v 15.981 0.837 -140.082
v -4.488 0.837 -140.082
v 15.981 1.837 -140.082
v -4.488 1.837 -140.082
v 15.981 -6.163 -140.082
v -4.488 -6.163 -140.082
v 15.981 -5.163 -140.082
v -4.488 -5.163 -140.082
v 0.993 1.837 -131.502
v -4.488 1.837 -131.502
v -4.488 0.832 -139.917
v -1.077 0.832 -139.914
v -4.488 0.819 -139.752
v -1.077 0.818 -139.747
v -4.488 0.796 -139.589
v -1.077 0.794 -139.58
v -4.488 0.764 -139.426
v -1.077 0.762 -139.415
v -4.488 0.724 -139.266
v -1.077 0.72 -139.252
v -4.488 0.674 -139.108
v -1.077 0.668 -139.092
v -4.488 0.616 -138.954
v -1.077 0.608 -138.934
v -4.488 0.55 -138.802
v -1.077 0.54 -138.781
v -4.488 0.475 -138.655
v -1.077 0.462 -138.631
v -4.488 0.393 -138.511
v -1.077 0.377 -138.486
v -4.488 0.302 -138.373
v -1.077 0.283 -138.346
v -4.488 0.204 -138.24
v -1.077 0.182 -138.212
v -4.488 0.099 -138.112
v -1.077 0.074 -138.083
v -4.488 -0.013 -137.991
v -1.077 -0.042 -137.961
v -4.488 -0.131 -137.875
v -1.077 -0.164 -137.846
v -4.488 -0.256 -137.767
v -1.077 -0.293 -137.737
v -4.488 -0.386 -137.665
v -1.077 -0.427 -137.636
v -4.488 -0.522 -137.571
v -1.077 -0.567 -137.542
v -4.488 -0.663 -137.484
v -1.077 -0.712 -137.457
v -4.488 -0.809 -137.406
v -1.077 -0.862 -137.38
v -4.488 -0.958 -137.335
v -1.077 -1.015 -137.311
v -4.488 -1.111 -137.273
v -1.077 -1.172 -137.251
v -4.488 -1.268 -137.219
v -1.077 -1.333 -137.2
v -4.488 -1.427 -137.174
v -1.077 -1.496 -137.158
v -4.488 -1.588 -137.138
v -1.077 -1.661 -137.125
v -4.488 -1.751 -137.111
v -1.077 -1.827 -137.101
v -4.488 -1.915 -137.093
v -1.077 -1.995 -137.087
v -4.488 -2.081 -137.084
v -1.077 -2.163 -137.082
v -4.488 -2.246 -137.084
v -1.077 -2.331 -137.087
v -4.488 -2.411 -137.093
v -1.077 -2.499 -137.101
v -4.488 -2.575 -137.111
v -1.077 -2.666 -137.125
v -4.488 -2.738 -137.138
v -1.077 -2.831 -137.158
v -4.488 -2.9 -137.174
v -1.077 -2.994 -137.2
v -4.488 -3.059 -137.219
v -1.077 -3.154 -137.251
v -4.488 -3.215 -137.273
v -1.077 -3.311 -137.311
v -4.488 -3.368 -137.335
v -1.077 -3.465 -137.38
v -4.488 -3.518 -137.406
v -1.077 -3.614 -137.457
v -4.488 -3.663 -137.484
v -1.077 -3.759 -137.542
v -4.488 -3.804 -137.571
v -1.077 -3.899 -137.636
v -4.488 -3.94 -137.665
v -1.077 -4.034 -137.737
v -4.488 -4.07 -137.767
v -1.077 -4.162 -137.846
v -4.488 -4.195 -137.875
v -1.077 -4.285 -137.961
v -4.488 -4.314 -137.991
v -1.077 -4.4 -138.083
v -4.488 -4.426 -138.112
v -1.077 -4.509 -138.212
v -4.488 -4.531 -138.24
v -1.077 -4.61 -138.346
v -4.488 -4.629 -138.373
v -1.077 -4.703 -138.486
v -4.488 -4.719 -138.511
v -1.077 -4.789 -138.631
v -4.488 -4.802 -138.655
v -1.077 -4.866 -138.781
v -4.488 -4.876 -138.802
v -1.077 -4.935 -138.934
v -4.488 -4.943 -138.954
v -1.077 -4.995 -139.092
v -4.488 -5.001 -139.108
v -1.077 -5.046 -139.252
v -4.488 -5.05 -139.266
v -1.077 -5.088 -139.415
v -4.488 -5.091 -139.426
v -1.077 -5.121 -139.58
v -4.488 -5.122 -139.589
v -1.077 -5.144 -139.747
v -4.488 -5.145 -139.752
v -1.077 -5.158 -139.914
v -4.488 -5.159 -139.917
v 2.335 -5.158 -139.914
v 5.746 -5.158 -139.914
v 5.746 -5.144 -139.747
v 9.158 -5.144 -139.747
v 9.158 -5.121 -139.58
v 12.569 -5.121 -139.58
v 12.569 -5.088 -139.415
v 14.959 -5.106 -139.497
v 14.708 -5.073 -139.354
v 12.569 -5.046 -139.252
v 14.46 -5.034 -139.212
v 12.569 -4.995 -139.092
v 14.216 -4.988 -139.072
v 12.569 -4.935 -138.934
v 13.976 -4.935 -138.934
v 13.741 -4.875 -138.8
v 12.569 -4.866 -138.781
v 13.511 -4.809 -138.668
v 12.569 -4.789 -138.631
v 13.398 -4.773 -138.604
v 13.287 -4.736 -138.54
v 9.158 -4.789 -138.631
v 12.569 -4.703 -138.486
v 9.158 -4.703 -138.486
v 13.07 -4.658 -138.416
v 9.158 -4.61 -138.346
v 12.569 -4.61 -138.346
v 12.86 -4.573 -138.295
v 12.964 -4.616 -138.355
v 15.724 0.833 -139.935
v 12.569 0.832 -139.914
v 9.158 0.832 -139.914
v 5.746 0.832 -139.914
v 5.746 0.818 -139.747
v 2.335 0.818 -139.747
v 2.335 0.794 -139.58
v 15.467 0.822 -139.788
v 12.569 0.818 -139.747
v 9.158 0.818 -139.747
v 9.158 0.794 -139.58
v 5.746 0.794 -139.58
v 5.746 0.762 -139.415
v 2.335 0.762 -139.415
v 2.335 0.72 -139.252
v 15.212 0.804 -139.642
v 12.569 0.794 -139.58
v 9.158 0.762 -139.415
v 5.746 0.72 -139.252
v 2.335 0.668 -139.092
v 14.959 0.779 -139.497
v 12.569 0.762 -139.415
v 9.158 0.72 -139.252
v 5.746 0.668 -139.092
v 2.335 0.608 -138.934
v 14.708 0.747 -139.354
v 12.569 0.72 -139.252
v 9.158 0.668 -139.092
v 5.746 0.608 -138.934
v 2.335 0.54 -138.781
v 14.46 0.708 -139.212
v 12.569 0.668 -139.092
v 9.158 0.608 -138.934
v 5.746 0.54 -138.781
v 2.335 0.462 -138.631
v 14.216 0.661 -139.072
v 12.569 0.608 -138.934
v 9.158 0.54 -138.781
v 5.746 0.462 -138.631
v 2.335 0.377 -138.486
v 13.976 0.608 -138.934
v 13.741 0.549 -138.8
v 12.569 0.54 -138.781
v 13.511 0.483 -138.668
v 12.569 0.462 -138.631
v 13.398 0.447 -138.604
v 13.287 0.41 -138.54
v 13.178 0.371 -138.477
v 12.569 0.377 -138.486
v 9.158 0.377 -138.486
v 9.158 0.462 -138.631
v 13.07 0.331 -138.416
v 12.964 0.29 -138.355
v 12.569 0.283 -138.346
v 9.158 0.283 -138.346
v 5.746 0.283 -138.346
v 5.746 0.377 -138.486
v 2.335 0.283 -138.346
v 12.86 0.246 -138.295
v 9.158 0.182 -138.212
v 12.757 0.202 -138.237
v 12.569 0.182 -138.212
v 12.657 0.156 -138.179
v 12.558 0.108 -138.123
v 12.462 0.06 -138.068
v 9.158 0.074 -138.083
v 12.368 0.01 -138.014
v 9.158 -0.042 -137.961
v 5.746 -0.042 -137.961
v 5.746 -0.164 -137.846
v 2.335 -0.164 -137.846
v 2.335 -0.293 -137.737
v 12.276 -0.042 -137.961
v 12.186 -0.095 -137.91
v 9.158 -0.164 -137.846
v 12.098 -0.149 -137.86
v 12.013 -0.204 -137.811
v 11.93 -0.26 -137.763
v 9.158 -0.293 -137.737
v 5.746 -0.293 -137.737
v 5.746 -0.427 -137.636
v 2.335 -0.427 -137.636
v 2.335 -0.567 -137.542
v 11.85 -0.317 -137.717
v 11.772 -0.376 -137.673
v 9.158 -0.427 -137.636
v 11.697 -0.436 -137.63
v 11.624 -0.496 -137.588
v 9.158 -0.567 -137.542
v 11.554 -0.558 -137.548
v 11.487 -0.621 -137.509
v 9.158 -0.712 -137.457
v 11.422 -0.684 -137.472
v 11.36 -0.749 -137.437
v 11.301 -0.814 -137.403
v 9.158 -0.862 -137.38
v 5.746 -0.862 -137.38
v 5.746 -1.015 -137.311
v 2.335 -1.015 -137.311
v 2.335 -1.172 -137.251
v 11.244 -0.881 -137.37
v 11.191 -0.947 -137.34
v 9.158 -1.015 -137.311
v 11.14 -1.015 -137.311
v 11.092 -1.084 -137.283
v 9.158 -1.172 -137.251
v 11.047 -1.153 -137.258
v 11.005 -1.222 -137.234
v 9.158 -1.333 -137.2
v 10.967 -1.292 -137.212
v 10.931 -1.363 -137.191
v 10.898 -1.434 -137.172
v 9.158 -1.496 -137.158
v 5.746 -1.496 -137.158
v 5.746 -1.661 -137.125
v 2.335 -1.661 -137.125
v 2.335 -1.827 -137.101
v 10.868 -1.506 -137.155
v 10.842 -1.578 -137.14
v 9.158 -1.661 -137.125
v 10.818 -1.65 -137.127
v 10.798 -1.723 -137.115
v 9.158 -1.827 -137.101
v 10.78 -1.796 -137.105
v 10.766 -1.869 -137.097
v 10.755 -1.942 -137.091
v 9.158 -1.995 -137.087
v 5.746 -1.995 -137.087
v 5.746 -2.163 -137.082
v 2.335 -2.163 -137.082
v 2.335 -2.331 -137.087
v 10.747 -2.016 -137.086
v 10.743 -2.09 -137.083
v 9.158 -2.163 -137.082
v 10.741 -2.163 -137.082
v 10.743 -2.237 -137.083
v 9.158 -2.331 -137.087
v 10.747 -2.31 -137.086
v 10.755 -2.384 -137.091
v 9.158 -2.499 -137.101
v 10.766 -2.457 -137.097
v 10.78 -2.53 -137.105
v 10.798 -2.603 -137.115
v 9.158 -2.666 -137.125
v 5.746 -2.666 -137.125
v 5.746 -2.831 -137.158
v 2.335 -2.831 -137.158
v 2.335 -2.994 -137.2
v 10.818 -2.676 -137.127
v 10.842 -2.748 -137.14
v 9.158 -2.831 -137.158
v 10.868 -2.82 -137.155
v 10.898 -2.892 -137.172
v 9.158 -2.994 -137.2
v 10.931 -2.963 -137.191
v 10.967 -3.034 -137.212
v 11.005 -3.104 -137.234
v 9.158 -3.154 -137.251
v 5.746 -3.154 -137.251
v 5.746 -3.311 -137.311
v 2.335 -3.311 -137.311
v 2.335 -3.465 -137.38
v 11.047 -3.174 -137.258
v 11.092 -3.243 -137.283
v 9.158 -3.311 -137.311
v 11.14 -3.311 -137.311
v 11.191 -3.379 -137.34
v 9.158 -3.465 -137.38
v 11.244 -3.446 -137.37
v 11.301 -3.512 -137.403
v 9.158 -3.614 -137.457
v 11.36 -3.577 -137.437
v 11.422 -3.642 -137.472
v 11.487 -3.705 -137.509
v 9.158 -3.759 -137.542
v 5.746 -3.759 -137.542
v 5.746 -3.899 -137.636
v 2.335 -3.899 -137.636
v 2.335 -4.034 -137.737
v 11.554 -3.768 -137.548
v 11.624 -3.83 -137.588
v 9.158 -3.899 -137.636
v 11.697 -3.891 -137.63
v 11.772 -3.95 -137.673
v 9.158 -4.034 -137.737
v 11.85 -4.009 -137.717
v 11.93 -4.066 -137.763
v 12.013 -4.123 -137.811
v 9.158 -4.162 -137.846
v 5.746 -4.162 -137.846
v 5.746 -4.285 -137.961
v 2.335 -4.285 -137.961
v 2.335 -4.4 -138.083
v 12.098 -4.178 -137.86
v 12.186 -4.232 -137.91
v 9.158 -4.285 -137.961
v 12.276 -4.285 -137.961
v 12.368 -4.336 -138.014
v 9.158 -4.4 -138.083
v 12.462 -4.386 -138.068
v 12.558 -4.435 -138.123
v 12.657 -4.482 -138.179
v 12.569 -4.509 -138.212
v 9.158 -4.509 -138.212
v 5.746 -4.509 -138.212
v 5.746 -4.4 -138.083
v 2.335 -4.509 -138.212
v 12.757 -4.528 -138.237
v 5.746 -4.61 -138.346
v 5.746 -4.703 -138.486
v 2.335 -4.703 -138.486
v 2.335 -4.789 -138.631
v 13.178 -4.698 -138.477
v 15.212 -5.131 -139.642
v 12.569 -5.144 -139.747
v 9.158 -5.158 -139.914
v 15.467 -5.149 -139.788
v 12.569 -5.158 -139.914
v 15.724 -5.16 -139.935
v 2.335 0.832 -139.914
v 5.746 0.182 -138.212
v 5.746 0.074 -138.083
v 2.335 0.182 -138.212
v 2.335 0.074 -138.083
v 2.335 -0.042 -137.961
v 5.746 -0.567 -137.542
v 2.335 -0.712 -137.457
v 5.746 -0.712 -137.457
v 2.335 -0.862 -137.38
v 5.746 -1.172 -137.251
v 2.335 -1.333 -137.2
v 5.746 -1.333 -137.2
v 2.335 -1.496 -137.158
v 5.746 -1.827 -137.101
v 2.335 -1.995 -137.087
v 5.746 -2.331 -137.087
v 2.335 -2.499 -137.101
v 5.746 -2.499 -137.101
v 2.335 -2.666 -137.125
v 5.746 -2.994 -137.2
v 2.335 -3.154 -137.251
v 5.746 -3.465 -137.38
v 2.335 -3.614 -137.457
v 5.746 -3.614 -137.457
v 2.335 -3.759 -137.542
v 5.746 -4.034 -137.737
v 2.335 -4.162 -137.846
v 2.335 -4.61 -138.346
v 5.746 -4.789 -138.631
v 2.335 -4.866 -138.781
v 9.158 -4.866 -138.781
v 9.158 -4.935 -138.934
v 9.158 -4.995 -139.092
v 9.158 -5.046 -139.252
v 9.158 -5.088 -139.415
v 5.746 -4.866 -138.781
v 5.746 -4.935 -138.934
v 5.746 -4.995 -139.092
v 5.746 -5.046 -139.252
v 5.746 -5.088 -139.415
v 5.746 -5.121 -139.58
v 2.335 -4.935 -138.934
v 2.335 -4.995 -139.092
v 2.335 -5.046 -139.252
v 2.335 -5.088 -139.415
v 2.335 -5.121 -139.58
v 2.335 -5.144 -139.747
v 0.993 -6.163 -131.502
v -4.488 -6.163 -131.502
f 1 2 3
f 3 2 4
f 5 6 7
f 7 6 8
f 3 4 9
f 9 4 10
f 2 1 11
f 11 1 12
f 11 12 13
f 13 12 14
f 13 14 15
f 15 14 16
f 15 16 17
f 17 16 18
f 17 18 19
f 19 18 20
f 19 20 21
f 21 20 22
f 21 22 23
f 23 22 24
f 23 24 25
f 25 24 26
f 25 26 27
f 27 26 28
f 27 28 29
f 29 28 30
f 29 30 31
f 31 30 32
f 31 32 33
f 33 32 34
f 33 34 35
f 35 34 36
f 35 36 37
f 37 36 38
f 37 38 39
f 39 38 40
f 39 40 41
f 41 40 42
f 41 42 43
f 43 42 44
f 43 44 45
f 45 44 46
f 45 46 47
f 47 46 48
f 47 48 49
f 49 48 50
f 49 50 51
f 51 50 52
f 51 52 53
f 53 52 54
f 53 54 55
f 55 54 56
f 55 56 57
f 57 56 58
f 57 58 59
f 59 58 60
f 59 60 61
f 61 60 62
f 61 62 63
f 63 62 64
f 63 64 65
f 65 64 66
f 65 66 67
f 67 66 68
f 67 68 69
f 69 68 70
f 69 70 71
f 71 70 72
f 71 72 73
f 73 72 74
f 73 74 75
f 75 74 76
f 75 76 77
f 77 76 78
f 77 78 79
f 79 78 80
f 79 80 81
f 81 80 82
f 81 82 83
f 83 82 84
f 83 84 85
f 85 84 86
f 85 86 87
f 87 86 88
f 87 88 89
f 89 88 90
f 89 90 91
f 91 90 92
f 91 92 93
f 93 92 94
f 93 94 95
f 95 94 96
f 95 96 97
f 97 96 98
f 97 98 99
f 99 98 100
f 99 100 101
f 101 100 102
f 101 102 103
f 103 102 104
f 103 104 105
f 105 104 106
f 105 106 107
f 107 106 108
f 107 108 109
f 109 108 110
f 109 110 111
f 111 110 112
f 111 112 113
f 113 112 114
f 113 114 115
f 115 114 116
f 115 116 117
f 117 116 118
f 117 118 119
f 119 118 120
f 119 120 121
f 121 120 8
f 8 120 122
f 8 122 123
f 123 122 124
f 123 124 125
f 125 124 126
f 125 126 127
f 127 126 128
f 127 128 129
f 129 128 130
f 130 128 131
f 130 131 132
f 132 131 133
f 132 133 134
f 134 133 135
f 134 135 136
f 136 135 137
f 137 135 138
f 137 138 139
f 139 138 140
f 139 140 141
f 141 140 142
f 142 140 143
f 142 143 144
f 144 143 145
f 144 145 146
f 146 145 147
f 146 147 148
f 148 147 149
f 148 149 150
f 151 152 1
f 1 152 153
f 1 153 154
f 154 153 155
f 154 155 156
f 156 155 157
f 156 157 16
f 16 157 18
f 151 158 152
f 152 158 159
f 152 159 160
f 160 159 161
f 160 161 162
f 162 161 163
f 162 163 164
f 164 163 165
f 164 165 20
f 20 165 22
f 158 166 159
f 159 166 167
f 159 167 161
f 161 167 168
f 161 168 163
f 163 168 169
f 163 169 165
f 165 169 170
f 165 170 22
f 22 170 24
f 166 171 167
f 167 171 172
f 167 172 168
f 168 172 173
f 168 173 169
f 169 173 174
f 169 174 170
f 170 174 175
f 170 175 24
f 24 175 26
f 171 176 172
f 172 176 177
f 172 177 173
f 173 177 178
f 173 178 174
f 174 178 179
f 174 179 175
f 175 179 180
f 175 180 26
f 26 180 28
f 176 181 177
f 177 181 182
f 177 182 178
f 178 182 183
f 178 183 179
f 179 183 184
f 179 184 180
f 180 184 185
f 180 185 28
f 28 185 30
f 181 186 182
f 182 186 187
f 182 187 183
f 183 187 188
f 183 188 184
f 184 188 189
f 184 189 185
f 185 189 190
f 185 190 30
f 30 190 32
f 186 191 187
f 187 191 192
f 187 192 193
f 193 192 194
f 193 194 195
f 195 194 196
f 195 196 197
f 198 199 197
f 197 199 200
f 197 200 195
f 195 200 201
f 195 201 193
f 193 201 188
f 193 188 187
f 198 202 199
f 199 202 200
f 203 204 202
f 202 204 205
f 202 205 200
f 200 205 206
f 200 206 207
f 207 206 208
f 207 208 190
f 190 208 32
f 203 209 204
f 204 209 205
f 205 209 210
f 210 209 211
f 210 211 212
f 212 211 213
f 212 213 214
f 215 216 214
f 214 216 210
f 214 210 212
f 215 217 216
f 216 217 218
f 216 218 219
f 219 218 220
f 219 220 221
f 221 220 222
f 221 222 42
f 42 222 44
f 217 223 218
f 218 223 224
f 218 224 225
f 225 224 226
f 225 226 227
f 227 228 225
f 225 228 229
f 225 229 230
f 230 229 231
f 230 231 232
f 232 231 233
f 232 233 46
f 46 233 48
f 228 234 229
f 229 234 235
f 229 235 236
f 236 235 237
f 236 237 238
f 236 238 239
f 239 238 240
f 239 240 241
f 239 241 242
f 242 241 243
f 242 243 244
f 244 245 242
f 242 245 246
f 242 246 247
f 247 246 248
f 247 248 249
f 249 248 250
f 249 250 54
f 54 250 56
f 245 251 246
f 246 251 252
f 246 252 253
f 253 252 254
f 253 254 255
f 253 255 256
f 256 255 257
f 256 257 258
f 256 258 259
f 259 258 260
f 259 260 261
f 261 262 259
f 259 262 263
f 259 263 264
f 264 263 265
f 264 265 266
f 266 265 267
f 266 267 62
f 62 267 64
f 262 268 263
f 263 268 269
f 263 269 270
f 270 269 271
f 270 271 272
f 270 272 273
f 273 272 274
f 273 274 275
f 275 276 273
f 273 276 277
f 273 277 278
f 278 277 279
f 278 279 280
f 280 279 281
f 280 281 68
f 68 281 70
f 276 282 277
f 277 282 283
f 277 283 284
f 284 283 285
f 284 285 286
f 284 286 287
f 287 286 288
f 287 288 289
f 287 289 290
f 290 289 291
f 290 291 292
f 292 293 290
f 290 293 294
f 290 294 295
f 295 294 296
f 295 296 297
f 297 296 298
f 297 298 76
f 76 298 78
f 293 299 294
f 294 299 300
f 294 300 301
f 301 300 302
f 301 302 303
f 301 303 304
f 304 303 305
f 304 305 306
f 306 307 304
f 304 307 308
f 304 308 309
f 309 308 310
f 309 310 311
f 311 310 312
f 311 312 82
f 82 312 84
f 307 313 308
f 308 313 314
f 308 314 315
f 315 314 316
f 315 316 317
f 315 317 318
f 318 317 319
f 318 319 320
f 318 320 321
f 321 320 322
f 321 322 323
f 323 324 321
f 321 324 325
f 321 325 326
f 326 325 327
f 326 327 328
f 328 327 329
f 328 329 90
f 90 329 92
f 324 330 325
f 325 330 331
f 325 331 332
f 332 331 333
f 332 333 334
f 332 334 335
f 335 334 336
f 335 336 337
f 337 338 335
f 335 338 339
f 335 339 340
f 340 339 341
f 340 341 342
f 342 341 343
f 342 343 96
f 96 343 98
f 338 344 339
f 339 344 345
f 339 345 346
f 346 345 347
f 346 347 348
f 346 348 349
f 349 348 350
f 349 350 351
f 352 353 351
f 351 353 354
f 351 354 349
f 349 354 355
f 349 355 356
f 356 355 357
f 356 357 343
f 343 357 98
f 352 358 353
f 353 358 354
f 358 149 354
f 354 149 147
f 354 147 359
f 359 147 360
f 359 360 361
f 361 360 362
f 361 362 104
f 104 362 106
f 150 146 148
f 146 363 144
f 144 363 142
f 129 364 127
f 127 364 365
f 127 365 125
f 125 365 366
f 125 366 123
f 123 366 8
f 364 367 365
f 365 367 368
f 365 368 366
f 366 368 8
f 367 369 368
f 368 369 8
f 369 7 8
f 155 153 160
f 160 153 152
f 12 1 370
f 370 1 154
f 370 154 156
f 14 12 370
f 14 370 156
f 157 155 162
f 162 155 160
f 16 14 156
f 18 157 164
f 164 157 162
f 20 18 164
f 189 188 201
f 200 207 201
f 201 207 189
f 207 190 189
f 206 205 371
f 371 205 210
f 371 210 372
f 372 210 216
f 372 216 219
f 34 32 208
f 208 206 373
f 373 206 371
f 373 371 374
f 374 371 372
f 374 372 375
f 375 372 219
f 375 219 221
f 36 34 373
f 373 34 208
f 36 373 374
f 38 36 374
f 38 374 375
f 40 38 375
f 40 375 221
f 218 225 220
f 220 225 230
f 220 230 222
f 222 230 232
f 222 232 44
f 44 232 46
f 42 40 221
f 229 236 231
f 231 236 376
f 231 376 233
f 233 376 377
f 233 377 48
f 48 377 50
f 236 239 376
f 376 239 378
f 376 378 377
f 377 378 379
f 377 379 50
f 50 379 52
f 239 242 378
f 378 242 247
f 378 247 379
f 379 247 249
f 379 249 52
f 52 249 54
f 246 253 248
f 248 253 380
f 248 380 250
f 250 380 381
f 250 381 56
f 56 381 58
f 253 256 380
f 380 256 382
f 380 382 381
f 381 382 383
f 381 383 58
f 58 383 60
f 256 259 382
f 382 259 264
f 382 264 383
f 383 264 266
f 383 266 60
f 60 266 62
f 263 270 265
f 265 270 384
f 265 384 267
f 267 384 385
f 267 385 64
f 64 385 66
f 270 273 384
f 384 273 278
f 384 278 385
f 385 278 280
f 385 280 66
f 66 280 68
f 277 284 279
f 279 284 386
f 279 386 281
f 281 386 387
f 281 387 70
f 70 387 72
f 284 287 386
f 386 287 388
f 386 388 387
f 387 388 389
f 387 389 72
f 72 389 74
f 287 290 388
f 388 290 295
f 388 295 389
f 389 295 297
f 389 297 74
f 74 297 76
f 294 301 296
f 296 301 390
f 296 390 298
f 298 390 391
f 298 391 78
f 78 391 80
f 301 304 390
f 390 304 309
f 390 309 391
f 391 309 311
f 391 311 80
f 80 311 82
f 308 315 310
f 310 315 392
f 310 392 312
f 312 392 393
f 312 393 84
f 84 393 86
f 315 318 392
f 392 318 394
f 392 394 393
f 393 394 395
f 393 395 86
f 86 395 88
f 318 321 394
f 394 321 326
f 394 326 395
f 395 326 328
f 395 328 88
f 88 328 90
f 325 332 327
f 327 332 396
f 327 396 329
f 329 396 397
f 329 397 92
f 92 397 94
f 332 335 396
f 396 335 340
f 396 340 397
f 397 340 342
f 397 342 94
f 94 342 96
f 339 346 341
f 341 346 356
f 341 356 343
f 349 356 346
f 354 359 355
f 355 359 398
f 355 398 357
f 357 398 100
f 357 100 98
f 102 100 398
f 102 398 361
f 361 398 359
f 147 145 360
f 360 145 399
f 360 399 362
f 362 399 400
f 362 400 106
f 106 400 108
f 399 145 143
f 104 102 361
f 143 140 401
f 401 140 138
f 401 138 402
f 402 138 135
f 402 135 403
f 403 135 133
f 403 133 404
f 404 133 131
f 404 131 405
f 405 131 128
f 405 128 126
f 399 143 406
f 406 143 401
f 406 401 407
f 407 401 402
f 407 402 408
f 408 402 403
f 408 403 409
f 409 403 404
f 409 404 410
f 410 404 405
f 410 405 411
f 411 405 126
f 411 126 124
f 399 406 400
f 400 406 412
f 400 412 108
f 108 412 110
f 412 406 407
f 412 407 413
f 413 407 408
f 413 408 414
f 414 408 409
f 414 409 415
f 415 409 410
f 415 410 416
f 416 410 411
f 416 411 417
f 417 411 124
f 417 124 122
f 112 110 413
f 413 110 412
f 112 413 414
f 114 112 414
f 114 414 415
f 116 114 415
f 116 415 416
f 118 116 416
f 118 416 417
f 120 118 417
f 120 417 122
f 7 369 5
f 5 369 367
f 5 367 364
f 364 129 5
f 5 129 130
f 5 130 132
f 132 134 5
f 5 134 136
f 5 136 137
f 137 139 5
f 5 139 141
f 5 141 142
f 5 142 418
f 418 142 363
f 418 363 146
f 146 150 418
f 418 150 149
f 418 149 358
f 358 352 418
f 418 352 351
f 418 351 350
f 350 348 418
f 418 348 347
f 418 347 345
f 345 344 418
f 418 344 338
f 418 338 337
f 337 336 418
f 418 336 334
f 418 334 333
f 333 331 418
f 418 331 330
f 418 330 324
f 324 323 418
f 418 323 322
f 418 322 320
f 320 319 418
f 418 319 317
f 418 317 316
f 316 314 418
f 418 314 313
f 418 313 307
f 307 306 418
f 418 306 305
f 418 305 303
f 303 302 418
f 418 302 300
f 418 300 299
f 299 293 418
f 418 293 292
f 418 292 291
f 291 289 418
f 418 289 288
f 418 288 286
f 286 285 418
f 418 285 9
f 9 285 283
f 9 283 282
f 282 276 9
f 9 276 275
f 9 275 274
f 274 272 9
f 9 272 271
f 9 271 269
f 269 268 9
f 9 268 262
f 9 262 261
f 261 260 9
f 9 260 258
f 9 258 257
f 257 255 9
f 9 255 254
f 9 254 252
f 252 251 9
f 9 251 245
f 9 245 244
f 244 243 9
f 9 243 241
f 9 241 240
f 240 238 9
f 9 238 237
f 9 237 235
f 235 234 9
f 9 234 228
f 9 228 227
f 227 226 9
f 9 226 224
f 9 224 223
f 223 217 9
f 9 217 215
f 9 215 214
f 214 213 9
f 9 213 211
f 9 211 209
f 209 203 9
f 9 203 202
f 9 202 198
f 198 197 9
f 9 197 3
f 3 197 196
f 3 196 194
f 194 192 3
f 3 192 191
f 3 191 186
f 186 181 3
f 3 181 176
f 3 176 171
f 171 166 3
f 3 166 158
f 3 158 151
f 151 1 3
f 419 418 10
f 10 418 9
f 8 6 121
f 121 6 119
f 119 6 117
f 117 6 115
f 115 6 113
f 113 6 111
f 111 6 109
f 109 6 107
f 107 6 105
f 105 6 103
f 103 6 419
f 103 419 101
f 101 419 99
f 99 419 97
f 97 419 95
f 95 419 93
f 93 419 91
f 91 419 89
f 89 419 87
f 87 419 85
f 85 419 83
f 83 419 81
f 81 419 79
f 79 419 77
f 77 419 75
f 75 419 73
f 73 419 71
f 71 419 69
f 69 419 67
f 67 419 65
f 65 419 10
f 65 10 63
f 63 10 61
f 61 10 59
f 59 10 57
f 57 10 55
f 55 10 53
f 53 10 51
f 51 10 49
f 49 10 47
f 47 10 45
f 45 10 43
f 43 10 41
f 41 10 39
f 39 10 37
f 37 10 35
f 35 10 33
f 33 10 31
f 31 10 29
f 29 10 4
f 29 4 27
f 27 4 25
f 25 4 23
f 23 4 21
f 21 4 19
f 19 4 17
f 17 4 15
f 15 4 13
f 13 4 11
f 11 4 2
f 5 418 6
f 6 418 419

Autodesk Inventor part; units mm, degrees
ref_plane "YZ Plane" through (0, 0, 0) normal (1, 0, 0) x (0, 1, 0)
ref_plane "XZ Plane" through (0, 0, 0) normal (0, 1, 0) x (-1, 0, 0)
ref_plane "XY Plane" through (0, 0, 0) normal (0, 0, 1) x (1, 0, 0)
ref_plane "Work Plane1" through (-6.4883, -6.1632, -131.5017) normal (0, 1, 0) x (-1, 0, 0)
sketch "Sketch1" plane through (-6.4883, -6.1632, -131.5017) normal (0, 1, 0) x (-1, 0, 0)
  line L0 (-2, -18) -> (-2, 0) projected
  line L1 (-2, 0) -> (-7.4816, 0) projected
  line L2 (-22.4693, -8.5807) -> (-7.4816, 0) projected
  line L3 (-6.2906, -18) -> (-22.4693, -8.5807) projected
  line L4 (-2, -18) -> (-6.2906, -18) projected
  point P0 (-6.4883, 131.5017)
extrude "Extrusion1" add sketch "Sketch1" along normal blind 8
sketch "Sketch2" plane through (0, 0, 0) normal (1, 0, 0) x (0, 1, 0)
  line L0 (-6.1632, -140.0824) -> (1.8368, -140.0824) projected
  circle A0 centre (-2.1632, -140.0824) radius 3
  point P0 (0, 0)
  dimension "d2" = 6
extrude "Extrusion2" cut sketch "Sketch2" along normal through all both and the other way through all
sketch "Sketch3" plane through (-6.4883, 1.8368, -131.5017) normal (0, 1, 0) x (1, 0, 0)
  line L0 (6.2906, 18) -> (2, 18) projected
  line L1 (17.3164, 11.5807) -> (22.4693, 8.5807) projected
  line L2 (2, 18) -> (22.4693, 18)
  line L3 (22.4693, 18) -> (22.4693, 8.5807)
  line L4 (22.4693, 8.5807) -> (2, 8.5807)
  line L5 (2, 8.5807) -> (2, 18)
  point P0 (6.4883, -131.5017)
extrude "Extrusion3" cut sketch "Sketch3" against normal through all
properties part number "Wire_Clossing"
